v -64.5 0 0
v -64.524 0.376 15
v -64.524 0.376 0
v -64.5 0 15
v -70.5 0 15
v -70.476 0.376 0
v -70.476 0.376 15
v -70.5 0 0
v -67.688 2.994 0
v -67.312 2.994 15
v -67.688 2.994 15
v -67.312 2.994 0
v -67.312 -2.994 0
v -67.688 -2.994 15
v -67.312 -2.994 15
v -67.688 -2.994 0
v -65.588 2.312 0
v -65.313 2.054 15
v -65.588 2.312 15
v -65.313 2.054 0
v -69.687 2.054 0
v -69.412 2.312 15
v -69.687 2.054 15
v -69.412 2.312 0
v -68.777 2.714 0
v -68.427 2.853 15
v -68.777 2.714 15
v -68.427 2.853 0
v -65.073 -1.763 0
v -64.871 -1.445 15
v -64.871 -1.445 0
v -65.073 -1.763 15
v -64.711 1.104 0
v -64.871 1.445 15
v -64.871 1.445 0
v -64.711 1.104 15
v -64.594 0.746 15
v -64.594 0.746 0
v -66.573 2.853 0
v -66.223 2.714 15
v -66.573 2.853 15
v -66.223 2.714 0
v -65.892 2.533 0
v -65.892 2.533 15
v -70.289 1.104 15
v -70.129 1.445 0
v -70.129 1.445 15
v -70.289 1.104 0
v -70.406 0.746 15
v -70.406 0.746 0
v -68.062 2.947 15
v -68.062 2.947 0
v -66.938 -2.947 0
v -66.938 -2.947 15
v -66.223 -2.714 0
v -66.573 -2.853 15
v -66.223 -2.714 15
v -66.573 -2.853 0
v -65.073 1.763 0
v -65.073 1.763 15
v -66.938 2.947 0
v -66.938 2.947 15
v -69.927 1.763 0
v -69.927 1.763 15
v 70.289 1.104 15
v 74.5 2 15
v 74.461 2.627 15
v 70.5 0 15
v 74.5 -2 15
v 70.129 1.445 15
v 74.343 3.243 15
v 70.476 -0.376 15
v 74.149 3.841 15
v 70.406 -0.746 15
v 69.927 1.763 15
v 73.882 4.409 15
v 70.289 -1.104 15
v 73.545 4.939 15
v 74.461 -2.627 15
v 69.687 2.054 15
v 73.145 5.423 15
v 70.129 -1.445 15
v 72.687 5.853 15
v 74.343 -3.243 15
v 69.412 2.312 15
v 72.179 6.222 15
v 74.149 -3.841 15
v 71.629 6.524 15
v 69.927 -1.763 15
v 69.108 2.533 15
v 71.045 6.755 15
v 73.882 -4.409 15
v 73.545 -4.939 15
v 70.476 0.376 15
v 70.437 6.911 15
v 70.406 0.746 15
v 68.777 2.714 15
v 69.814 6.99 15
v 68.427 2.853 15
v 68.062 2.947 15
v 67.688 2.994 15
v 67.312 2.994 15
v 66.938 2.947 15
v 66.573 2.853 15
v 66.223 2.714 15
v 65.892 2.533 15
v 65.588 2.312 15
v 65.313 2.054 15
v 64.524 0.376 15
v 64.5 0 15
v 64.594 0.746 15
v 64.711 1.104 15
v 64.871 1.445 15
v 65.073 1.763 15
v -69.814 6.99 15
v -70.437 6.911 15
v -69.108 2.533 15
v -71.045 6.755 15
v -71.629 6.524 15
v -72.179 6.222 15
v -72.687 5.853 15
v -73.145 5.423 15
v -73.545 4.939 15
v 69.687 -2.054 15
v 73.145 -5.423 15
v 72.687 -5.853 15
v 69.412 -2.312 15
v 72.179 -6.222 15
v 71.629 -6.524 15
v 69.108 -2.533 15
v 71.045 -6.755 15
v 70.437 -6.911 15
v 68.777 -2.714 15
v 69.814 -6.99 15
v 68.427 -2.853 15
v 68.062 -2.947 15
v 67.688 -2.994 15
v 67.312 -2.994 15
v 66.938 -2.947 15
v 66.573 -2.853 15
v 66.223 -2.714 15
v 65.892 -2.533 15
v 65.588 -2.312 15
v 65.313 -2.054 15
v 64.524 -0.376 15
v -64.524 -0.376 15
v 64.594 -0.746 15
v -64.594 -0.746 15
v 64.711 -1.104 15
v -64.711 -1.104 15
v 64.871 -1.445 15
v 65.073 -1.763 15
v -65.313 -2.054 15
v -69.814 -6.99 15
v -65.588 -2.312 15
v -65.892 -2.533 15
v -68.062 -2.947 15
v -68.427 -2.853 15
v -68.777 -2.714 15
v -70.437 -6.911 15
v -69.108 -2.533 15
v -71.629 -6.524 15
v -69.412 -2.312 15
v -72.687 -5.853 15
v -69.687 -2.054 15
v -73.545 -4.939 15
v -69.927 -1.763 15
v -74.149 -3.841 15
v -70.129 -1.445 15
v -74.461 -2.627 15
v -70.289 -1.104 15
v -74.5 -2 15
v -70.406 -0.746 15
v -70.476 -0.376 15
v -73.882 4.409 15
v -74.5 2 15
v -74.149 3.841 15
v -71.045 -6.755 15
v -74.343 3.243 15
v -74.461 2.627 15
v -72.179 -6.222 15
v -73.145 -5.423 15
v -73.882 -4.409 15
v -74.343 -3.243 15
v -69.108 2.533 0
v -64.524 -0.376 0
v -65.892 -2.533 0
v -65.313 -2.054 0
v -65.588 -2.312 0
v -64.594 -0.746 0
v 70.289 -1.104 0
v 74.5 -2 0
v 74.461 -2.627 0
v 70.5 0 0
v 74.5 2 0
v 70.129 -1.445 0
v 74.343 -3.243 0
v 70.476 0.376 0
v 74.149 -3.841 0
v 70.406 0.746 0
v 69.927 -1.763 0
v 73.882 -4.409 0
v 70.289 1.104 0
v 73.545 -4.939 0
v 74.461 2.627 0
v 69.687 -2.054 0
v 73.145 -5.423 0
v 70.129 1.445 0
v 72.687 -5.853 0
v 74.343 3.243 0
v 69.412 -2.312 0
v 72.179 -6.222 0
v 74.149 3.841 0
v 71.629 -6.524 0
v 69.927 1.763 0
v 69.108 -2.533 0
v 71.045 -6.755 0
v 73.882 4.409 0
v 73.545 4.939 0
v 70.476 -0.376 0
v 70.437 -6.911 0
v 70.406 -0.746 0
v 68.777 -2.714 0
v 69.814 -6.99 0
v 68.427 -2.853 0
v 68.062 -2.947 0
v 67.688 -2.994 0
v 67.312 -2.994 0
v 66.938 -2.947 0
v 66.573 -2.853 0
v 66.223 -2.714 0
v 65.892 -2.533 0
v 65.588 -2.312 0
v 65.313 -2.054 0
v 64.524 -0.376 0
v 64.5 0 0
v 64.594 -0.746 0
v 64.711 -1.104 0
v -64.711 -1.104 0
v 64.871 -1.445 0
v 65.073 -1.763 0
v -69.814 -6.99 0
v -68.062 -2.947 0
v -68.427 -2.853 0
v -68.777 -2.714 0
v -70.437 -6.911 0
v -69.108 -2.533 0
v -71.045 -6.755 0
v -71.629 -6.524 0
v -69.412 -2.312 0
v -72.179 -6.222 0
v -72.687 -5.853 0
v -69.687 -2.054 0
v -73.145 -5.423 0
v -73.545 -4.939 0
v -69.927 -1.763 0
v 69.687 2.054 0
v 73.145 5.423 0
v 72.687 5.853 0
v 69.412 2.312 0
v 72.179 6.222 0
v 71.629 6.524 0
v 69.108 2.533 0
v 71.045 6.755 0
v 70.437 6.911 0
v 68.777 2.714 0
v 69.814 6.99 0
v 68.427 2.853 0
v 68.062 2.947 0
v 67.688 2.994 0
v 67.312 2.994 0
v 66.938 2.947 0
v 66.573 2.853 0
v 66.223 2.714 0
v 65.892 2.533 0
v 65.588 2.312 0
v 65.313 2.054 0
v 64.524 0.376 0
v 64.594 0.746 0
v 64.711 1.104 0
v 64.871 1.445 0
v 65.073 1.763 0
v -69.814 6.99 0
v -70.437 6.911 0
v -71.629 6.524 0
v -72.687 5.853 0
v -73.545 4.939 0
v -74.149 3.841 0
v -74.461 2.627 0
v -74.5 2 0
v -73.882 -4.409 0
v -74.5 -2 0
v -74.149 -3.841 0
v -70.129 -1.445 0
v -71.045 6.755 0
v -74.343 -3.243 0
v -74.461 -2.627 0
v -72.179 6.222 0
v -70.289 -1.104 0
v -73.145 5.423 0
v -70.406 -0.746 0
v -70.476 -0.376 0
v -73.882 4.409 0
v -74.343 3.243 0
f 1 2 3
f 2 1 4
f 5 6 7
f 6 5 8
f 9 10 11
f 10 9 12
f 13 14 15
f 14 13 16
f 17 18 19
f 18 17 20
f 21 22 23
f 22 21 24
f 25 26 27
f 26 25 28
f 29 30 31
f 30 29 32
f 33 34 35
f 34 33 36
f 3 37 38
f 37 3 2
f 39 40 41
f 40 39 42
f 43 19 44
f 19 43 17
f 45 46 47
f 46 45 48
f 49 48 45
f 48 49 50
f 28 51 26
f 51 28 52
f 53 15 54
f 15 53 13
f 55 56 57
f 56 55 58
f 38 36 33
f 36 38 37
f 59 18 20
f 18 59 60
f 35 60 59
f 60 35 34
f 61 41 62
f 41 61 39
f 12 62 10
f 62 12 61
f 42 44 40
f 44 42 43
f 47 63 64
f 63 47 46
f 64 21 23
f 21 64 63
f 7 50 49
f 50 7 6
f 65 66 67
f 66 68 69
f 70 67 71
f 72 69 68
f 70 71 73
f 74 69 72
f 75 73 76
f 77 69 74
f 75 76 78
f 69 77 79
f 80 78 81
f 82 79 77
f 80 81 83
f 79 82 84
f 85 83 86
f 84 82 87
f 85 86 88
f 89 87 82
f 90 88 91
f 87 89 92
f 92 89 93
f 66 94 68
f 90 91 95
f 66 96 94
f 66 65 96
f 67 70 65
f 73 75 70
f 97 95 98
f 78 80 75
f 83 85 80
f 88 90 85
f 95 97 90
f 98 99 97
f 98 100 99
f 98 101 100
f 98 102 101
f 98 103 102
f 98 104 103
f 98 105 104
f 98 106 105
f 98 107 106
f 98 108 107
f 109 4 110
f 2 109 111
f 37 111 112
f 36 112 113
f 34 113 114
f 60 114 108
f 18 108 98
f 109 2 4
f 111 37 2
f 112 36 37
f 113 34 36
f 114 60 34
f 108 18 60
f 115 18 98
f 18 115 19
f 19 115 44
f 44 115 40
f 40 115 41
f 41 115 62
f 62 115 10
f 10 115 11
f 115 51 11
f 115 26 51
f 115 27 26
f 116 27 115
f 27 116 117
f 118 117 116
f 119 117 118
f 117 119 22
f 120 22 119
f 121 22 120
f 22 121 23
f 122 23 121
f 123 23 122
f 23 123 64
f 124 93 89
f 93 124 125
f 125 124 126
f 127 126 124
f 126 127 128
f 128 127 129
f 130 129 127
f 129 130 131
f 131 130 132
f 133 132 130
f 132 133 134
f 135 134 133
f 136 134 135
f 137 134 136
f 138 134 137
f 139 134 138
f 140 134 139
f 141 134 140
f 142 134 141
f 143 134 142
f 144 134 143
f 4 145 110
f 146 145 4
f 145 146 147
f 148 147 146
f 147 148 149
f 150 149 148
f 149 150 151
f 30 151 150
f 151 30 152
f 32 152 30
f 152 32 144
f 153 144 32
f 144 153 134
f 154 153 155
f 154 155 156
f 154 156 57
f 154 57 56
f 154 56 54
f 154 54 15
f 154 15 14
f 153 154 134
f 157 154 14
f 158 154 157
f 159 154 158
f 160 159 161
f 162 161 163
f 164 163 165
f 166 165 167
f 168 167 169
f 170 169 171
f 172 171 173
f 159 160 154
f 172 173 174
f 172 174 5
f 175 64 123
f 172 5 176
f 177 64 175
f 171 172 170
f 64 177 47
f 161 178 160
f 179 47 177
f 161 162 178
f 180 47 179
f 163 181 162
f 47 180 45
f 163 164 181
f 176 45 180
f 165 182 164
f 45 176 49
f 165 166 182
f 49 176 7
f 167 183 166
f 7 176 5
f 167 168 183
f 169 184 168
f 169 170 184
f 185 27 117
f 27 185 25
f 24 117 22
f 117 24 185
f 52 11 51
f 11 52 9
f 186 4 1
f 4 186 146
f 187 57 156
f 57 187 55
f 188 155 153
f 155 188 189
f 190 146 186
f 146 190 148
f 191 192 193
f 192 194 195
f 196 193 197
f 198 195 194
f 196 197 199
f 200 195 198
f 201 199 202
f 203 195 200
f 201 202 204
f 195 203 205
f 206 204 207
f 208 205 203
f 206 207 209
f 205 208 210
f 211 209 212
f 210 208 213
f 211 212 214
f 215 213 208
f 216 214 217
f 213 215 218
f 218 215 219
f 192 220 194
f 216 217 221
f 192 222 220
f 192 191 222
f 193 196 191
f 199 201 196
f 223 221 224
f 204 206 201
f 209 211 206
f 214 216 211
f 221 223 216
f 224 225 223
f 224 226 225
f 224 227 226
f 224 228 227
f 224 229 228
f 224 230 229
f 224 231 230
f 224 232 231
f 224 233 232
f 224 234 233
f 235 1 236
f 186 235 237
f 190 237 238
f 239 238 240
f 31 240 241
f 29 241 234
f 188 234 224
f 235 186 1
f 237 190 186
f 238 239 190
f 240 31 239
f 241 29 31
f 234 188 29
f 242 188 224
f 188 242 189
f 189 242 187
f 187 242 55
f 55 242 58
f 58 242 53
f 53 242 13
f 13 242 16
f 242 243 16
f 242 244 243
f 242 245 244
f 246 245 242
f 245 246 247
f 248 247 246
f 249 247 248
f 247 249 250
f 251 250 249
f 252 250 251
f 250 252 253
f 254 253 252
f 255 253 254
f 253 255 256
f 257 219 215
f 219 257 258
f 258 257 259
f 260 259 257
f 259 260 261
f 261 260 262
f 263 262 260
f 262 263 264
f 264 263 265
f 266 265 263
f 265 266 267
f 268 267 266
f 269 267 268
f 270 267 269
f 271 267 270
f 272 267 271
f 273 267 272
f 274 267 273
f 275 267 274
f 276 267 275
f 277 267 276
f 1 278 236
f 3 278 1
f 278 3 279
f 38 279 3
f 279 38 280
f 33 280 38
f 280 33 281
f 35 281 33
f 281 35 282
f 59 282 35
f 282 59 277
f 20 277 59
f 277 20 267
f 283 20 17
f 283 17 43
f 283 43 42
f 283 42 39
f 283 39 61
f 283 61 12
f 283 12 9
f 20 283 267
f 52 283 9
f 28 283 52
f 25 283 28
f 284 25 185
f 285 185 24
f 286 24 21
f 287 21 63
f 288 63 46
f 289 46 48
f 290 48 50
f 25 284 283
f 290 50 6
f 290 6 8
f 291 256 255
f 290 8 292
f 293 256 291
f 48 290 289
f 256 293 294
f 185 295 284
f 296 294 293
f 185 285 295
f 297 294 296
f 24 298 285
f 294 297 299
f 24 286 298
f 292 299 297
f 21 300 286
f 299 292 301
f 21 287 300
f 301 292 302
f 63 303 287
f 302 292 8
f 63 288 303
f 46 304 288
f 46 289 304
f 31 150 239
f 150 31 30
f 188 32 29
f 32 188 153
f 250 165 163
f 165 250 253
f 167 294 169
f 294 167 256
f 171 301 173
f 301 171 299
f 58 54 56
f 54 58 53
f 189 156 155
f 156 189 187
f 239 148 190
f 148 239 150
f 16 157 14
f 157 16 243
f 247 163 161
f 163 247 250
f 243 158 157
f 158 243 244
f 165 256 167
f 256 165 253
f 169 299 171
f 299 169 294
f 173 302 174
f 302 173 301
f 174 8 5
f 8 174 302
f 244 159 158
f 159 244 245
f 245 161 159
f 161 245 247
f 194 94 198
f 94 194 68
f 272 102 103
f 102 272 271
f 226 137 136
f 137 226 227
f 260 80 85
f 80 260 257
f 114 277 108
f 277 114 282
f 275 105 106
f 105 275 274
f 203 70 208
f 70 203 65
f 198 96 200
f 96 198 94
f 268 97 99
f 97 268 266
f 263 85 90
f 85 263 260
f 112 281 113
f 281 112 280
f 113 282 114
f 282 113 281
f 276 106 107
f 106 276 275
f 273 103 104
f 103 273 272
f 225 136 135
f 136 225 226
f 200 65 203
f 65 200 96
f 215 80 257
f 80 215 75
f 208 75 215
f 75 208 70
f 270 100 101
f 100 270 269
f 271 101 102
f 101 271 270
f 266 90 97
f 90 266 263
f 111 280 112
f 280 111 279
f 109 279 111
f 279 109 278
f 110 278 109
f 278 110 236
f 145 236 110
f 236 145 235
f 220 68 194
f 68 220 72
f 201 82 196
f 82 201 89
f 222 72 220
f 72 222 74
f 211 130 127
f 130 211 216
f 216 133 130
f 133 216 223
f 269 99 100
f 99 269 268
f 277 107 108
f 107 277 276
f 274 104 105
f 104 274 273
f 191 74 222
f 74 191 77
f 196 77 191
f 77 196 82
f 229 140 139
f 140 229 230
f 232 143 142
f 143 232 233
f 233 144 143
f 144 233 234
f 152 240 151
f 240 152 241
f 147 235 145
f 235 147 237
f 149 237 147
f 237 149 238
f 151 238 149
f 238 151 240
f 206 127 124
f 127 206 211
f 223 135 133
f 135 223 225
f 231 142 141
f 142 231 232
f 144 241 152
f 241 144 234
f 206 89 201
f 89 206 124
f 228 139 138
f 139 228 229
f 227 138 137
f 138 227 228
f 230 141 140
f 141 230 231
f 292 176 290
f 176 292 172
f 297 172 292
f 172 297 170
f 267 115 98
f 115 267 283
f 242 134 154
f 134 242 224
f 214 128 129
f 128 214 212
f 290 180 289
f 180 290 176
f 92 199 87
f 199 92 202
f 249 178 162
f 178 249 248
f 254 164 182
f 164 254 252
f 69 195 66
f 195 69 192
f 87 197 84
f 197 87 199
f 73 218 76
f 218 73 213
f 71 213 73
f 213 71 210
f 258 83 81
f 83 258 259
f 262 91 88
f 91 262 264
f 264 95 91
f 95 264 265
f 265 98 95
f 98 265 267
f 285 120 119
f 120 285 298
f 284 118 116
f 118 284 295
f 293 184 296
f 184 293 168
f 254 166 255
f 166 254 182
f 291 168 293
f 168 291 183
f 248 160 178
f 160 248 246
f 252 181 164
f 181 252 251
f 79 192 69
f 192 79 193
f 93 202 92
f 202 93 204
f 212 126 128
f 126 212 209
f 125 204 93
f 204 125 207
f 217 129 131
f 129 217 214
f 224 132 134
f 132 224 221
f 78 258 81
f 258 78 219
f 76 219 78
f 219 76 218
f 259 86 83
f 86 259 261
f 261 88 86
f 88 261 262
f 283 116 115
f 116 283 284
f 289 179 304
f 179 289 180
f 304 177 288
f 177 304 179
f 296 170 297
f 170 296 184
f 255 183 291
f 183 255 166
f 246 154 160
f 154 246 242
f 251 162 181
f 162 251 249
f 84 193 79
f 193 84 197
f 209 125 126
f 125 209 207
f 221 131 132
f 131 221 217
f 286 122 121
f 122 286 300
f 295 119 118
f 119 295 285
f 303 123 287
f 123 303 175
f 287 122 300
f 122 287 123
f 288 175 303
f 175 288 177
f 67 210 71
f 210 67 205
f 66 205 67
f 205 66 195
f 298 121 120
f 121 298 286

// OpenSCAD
$fn = 50;


difference() {
	union() {
		hull() {
			translate(v = [-69.5000000000, 2.0000000000, 0]) {
				cylinder(h = 15, r = 5);
			}
			translate(v = [69.5000000000, 2.0000000000, 0]) {
				cylinder(h = 15, r = 5);
			}
			translate(v = [-69.5000000000, -2.0000000000, 0]) {
				cylinder(h = 15, r = 5);
			}
			translate(v = [69.5000000000, -2.0000000000, 0]) {
				cylinder(h = 15, r = 5);
			}
		}
	}
	union() {
		translate(v = [-67.5000000000, 0.0000000000, 0]) {
			cylinder(h = 15, r = 3.0000000000);
		}
		translate(v = [67.5000000000, 0.0000000000, 0]) {
			cylinder(h = 15, r = 3.0000000000);
		}
		translate(v = [-67.5000000000, 0.0000000000, 0]) {
			cylinder(h = 15, r = 1.5000000000);
		}
		translate(v = [67.5000000000, 0.0000000000, 0]) {
			cylinder(h = 15, r = 1.5000000000);
		}
		translate(v = [-67.5000000000, 0.0000000000, 0]) {
			cylinder(h = 15, r = 1.5000000000);
		}
		translate(v = [67.5000000000, 0.0000000000, 0]) {
			cylinder(h = 15, r = 1.5000000000);
		}
		translate(v = [-67.5000000000, 0.0000000000, 0]) {
			cylinder(h = 15, r = 1.5000000000);
		}
		translate(v = [67.5000000000, 0.0000000000, 0]) {
			cylinder(h = 15, r = 1.5000000000);
		}
	}
}
